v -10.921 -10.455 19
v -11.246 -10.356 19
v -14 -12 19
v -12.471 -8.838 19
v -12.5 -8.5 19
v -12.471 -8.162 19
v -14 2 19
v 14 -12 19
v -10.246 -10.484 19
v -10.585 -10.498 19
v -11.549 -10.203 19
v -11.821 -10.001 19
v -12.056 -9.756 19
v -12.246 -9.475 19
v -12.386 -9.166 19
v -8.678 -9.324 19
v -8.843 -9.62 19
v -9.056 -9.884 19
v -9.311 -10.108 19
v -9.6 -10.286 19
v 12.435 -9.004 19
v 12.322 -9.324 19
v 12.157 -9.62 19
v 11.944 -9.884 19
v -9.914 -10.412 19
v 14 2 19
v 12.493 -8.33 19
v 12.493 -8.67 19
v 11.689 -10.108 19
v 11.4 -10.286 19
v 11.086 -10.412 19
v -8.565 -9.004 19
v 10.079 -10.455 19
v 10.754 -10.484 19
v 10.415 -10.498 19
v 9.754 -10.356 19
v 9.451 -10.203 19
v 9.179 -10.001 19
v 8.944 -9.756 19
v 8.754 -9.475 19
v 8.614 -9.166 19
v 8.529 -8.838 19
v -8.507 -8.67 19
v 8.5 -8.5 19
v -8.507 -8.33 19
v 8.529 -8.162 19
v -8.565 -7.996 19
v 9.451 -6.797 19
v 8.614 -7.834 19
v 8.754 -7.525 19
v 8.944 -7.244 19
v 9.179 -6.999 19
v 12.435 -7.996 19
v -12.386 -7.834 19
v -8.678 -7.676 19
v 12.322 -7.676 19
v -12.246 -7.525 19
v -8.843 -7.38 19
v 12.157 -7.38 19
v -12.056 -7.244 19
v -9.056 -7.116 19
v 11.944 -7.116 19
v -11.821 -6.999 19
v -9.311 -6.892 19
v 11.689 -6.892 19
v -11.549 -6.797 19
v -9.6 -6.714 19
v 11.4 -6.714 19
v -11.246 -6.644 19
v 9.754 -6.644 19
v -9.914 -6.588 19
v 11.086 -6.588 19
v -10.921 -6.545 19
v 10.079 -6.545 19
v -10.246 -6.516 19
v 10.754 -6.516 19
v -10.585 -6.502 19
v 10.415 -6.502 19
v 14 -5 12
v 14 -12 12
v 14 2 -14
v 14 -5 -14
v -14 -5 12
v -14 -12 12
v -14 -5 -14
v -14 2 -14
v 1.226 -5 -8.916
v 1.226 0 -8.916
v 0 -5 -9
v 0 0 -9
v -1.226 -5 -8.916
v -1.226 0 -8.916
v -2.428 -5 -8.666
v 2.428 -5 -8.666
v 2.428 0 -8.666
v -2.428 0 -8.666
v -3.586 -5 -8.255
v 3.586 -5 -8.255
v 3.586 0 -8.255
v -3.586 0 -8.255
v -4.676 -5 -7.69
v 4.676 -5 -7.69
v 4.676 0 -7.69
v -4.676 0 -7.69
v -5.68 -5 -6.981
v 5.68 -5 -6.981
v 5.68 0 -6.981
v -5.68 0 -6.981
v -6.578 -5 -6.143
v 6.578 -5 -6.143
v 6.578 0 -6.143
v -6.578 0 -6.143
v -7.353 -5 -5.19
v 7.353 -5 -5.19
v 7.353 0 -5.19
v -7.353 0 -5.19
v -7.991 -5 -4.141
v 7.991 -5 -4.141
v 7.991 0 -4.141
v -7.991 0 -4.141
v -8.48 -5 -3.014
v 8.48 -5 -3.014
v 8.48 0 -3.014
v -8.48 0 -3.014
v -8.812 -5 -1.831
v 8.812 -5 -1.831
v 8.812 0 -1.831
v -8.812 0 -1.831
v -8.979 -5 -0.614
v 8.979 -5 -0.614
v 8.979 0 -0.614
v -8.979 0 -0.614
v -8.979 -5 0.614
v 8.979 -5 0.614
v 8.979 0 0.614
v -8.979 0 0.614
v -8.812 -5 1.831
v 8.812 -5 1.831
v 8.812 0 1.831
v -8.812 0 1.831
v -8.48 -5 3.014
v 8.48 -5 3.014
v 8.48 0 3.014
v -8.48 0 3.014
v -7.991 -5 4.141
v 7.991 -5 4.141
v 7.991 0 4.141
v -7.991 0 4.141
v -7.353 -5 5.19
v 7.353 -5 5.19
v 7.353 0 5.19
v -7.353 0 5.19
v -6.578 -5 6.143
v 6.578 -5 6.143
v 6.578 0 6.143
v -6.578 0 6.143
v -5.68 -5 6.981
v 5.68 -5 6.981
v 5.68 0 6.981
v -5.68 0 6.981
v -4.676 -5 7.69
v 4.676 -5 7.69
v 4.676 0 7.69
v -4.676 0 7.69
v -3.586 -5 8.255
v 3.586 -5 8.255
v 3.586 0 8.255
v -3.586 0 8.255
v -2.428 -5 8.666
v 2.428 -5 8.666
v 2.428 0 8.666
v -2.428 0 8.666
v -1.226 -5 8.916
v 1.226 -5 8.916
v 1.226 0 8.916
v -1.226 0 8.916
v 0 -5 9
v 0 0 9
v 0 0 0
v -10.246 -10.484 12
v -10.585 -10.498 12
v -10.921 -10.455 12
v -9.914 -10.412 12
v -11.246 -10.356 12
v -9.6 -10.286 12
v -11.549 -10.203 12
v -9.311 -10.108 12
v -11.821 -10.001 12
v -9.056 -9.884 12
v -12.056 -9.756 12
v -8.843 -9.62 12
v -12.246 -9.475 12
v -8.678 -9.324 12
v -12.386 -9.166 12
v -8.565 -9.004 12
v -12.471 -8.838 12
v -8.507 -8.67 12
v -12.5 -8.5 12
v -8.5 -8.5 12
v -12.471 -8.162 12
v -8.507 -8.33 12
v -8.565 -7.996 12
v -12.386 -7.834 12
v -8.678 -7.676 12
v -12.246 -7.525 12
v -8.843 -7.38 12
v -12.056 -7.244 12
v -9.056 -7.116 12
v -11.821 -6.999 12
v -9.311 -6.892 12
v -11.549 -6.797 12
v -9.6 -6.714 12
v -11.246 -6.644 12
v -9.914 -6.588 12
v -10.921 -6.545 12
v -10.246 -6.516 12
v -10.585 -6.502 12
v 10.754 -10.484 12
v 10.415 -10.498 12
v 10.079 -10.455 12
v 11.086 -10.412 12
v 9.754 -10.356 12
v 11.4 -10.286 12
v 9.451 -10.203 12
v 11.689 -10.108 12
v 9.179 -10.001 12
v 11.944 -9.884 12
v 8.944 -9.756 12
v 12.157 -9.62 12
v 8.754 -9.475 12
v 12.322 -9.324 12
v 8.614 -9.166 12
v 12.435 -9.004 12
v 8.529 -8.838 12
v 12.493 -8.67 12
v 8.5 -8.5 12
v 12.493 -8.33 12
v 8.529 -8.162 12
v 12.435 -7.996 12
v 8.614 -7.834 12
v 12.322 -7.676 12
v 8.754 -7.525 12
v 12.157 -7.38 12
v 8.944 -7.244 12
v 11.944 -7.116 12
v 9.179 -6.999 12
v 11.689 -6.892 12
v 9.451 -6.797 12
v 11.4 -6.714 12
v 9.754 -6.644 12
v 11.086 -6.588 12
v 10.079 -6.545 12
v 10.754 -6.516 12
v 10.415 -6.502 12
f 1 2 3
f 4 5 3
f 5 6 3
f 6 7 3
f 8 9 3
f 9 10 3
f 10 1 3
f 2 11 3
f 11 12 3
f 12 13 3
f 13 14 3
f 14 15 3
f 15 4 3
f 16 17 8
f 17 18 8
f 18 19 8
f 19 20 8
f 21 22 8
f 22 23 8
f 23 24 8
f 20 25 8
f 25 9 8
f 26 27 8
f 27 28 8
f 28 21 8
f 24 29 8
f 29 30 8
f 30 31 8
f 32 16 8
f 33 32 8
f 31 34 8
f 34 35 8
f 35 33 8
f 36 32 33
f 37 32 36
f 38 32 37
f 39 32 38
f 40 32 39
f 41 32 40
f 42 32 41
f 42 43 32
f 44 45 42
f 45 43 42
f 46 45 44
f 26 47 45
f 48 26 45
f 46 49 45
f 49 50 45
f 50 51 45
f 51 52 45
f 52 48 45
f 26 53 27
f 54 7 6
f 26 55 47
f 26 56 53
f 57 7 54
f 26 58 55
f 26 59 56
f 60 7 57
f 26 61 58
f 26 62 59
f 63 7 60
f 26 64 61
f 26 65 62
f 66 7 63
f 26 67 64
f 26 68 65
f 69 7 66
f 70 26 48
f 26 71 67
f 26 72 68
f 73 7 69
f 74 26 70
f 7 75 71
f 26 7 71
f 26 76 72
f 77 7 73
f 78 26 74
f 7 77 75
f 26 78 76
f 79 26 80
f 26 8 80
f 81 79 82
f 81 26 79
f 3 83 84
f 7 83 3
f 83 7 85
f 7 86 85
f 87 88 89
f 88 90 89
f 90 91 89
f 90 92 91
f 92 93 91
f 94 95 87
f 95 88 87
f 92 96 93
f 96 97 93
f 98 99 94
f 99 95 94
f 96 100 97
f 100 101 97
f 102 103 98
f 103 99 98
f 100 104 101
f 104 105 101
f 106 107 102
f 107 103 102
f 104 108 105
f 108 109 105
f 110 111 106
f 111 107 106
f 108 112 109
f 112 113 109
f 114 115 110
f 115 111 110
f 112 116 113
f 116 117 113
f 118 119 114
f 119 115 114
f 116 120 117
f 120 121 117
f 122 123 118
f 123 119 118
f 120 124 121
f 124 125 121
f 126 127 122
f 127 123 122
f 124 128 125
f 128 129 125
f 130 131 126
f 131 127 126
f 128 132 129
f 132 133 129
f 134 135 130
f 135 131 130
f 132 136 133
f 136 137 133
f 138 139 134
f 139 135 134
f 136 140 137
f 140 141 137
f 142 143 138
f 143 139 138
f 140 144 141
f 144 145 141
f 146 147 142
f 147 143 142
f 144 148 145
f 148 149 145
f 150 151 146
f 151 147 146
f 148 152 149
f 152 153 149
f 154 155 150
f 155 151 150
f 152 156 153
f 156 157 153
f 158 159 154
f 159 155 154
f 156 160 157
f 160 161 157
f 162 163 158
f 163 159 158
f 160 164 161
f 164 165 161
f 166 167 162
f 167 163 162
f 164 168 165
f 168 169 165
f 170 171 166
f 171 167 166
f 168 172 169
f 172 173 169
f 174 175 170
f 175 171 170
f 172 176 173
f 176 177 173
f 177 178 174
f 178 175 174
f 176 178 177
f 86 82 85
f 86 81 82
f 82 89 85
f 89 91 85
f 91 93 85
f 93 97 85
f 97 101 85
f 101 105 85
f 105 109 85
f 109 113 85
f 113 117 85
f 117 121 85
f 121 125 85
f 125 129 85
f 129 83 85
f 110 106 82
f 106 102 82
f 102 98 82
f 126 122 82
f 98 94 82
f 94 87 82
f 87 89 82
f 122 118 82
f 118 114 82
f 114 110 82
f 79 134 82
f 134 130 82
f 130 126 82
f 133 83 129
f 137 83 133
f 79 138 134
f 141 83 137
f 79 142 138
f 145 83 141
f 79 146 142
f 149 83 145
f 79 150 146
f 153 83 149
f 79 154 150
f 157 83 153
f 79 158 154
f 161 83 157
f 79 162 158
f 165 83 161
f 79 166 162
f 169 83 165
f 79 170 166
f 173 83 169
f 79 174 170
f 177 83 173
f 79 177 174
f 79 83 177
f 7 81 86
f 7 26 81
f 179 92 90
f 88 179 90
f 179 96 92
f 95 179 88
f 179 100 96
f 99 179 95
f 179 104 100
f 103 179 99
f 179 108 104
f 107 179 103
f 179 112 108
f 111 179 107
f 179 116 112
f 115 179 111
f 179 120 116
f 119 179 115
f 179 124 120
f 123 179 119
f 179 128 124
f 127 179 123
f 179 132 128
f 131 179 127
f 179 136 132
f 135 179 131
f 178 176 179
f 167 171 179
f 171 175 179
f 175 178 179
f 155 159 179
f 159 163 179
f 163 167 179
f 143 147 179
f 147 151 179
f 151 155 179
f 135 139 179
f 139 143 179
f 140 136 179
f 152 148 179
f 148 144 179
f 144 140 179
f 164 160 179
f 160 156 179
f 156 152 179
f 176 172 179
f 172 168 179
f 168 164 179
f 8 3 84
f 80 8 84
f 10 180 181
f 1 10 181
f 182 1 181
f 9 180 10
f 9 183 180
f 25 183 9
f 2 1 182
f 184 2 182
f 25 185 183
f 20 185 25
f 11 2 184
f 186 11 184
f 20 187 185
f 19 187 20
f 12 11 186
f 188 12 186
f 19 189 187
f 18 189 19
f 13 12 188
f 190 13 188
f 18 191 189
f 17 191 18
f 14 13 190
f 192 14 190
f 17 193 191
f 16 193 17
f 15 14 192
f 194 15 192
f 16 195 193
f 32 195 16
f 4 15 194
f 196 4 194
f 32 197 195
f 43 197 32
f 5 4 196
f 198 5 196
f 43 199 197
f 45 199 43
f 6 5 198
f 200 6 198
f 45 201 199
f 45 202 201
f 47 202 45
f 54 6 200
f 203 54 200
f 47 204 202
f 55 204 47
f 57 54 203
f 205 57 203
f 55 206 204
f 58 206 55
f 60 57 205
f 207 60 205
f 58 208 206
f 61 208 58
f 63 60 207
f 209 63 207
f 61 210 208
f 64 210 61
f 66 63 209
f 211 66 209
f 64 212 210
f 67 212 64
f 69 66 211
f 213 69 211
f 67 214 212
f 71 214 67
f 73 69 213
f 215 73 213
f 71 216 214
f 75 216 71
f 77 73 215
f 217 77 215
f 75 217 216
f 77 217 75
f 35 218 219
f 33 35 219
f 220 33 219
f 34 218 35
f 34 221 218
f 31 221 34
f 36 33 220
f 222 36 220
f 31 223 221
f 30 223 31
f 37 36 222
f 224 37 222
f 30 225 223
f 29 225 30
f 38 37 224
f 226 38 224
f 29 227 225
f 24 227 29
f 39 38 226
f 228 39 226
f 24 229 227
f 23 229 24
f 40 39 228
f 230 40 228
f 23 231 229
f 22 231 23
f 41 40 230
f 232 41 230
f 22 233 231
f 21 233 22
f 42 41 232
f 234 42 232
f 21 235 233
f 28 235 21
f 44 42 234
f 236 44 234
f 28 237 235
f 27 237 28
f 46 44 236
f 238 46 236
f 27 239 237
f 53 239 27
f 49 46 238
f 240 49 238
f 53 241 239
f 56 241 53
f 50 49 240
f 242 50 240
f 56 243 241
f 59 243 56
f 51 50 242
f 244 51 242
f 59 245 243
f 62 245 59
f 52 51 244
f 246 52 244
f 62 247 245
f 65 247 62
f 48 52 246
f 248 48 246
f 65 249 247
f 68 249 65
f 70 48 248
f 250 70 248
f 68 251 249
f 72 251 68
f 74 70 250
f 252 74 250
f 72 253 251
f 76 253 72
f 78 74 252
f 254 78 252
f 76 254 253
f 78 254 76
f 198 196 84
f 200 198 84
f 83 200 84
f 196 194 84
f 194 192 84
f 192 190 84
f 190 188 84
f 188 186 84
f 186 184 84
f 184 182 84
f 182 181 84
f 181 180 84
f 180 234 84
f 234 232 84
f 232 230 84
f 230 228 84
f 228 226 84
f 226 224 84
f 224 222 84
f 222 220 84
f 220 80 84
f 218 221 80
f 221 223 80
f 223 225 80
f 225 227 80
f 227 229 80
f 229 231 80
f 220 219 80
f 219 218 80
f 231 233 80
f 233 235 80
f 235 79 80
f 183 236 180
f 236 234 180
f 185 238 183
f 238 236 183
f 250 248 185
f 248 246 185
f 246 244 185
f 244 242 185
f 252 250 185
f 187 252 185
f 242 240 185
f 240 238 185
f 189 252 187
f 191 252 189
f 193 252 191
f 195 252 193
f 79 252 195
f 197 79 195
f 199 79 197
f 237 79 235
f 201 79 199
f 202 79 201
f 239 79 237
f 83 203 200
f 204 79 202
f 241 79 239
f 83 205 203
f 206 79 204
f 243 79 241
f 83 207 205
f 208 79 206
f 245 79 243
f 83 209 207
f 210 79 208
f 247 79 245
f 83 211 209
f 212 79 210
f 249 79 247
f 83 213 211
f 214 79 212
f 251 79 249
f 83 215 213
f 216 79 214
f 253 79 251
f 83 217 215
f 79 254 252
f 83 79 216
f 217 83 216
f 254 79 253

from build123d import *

# Parameters (mm, degrees)
SKETCH1_W           = 28
SKETCH1_H           = 28
SKETCH1_R           = 9
BOSS_EXTRUDE3_DEPTH = 5
SKETCH1_4_W         = 28
SKETCH1_4_H         = 33
BOSS_EXTRUDE4_DEPTH = 2
SKETCH1_5_W         = 28
SKETCH1_5_H         = 5
BOSS_EXTRUDE5_DEPTH = 12
SKETCH2_R           = 2
CUT_EXTRUDE1_DEPTH  = 34.526109228
BOSS_EXTRUDE6_START = 2
SKETCH2_3_W         = 28
SKETCH2_3_H         = 7
SKETCH2_3_R         = 2
BOSS_EXTRUDE6_DEPTH = 2


with BuildPart() as part:
    # Sketch1 → Boss-Extrude3 (new body)
    with BuildSketch(Plane(origin=(0, 0, 0), x_dir=(1, 0, 0), z_dir=(0, 1, 0))):
        Rectangle(SKETCH1_W, SKETCH1_H)
        Circle(SKETCH1_R, mode=Mode.SUBTRACT)
    extrude(amount=-BOSS_EXTRUDE3_DEPTH)

    # Sketch1<4> → Boss-Extrude4 (add)
    with BuildSketch(Plane(origin=(0, 0, 0), x_dir=(1, 0, 0), z_dir=(0, 1, 0))):
        with Locations((0, -2.5)):
            Rectangle(SKETCH1_4_W, SKETCH1_4_H)
    extrude(amount=BOSS_EXTRUDE4_DEPTH)

    # Sketch1<5> → Boss-Extrude5 (add)
    with BuildSketch(Plane(origin=(0, 0, 0), x_dir=(1, 0, 0), z_dir=(0, 1, 0))):
        with Locations((0, -16.5)):
            Rectangle(SKETCH1_5_W, SKETCH1_5_H)
    extrude(amount=-BOSS_EXTRUDE5_DEPTH)

    # Sketch2 → Cut-Extrude1 (cut, through all)
    with BuildSketch(Plane(origin=(0, 0, 14), x_dir=(-1, 0, 0), z_dir=(0, 0, -1))):
        with Locations((-10.5, -8.5)):
            Circle(SKETCH2_R)
        with Locations((10.5, -8.5)):
            Circle(SKETCH2_R)
    extrude(amount=-CUT_EXTRUDE1_DEPTH, mode=Mode.SUBTRACT)

    # Sketch2<3> → Boss-Extrude6 (add)
    with BuildSketch(Plane(origin=(0, 0, 14), x_dir=(-1, 0, 0), z_dir=(0, 0, -1)).offset(BOSS_EXTRUDE6_START)):
        with Locations((0, -8.5)):
            Rectangle(SKETCH2_3_W, SKETCH2_3_H)
        with Locations((-10.5, -8.5)):
            Circle(SKETCH2_3_R, mode=Mode.SUBTRACT)
        with Locations((10.5, -8.5)):
            Circle(SKETCH2_3_R, mode=Mode.SUBTRACT)
    extrude(amount=-BOSS_EXTRUDE6_DEPTH)


solid = part.part
